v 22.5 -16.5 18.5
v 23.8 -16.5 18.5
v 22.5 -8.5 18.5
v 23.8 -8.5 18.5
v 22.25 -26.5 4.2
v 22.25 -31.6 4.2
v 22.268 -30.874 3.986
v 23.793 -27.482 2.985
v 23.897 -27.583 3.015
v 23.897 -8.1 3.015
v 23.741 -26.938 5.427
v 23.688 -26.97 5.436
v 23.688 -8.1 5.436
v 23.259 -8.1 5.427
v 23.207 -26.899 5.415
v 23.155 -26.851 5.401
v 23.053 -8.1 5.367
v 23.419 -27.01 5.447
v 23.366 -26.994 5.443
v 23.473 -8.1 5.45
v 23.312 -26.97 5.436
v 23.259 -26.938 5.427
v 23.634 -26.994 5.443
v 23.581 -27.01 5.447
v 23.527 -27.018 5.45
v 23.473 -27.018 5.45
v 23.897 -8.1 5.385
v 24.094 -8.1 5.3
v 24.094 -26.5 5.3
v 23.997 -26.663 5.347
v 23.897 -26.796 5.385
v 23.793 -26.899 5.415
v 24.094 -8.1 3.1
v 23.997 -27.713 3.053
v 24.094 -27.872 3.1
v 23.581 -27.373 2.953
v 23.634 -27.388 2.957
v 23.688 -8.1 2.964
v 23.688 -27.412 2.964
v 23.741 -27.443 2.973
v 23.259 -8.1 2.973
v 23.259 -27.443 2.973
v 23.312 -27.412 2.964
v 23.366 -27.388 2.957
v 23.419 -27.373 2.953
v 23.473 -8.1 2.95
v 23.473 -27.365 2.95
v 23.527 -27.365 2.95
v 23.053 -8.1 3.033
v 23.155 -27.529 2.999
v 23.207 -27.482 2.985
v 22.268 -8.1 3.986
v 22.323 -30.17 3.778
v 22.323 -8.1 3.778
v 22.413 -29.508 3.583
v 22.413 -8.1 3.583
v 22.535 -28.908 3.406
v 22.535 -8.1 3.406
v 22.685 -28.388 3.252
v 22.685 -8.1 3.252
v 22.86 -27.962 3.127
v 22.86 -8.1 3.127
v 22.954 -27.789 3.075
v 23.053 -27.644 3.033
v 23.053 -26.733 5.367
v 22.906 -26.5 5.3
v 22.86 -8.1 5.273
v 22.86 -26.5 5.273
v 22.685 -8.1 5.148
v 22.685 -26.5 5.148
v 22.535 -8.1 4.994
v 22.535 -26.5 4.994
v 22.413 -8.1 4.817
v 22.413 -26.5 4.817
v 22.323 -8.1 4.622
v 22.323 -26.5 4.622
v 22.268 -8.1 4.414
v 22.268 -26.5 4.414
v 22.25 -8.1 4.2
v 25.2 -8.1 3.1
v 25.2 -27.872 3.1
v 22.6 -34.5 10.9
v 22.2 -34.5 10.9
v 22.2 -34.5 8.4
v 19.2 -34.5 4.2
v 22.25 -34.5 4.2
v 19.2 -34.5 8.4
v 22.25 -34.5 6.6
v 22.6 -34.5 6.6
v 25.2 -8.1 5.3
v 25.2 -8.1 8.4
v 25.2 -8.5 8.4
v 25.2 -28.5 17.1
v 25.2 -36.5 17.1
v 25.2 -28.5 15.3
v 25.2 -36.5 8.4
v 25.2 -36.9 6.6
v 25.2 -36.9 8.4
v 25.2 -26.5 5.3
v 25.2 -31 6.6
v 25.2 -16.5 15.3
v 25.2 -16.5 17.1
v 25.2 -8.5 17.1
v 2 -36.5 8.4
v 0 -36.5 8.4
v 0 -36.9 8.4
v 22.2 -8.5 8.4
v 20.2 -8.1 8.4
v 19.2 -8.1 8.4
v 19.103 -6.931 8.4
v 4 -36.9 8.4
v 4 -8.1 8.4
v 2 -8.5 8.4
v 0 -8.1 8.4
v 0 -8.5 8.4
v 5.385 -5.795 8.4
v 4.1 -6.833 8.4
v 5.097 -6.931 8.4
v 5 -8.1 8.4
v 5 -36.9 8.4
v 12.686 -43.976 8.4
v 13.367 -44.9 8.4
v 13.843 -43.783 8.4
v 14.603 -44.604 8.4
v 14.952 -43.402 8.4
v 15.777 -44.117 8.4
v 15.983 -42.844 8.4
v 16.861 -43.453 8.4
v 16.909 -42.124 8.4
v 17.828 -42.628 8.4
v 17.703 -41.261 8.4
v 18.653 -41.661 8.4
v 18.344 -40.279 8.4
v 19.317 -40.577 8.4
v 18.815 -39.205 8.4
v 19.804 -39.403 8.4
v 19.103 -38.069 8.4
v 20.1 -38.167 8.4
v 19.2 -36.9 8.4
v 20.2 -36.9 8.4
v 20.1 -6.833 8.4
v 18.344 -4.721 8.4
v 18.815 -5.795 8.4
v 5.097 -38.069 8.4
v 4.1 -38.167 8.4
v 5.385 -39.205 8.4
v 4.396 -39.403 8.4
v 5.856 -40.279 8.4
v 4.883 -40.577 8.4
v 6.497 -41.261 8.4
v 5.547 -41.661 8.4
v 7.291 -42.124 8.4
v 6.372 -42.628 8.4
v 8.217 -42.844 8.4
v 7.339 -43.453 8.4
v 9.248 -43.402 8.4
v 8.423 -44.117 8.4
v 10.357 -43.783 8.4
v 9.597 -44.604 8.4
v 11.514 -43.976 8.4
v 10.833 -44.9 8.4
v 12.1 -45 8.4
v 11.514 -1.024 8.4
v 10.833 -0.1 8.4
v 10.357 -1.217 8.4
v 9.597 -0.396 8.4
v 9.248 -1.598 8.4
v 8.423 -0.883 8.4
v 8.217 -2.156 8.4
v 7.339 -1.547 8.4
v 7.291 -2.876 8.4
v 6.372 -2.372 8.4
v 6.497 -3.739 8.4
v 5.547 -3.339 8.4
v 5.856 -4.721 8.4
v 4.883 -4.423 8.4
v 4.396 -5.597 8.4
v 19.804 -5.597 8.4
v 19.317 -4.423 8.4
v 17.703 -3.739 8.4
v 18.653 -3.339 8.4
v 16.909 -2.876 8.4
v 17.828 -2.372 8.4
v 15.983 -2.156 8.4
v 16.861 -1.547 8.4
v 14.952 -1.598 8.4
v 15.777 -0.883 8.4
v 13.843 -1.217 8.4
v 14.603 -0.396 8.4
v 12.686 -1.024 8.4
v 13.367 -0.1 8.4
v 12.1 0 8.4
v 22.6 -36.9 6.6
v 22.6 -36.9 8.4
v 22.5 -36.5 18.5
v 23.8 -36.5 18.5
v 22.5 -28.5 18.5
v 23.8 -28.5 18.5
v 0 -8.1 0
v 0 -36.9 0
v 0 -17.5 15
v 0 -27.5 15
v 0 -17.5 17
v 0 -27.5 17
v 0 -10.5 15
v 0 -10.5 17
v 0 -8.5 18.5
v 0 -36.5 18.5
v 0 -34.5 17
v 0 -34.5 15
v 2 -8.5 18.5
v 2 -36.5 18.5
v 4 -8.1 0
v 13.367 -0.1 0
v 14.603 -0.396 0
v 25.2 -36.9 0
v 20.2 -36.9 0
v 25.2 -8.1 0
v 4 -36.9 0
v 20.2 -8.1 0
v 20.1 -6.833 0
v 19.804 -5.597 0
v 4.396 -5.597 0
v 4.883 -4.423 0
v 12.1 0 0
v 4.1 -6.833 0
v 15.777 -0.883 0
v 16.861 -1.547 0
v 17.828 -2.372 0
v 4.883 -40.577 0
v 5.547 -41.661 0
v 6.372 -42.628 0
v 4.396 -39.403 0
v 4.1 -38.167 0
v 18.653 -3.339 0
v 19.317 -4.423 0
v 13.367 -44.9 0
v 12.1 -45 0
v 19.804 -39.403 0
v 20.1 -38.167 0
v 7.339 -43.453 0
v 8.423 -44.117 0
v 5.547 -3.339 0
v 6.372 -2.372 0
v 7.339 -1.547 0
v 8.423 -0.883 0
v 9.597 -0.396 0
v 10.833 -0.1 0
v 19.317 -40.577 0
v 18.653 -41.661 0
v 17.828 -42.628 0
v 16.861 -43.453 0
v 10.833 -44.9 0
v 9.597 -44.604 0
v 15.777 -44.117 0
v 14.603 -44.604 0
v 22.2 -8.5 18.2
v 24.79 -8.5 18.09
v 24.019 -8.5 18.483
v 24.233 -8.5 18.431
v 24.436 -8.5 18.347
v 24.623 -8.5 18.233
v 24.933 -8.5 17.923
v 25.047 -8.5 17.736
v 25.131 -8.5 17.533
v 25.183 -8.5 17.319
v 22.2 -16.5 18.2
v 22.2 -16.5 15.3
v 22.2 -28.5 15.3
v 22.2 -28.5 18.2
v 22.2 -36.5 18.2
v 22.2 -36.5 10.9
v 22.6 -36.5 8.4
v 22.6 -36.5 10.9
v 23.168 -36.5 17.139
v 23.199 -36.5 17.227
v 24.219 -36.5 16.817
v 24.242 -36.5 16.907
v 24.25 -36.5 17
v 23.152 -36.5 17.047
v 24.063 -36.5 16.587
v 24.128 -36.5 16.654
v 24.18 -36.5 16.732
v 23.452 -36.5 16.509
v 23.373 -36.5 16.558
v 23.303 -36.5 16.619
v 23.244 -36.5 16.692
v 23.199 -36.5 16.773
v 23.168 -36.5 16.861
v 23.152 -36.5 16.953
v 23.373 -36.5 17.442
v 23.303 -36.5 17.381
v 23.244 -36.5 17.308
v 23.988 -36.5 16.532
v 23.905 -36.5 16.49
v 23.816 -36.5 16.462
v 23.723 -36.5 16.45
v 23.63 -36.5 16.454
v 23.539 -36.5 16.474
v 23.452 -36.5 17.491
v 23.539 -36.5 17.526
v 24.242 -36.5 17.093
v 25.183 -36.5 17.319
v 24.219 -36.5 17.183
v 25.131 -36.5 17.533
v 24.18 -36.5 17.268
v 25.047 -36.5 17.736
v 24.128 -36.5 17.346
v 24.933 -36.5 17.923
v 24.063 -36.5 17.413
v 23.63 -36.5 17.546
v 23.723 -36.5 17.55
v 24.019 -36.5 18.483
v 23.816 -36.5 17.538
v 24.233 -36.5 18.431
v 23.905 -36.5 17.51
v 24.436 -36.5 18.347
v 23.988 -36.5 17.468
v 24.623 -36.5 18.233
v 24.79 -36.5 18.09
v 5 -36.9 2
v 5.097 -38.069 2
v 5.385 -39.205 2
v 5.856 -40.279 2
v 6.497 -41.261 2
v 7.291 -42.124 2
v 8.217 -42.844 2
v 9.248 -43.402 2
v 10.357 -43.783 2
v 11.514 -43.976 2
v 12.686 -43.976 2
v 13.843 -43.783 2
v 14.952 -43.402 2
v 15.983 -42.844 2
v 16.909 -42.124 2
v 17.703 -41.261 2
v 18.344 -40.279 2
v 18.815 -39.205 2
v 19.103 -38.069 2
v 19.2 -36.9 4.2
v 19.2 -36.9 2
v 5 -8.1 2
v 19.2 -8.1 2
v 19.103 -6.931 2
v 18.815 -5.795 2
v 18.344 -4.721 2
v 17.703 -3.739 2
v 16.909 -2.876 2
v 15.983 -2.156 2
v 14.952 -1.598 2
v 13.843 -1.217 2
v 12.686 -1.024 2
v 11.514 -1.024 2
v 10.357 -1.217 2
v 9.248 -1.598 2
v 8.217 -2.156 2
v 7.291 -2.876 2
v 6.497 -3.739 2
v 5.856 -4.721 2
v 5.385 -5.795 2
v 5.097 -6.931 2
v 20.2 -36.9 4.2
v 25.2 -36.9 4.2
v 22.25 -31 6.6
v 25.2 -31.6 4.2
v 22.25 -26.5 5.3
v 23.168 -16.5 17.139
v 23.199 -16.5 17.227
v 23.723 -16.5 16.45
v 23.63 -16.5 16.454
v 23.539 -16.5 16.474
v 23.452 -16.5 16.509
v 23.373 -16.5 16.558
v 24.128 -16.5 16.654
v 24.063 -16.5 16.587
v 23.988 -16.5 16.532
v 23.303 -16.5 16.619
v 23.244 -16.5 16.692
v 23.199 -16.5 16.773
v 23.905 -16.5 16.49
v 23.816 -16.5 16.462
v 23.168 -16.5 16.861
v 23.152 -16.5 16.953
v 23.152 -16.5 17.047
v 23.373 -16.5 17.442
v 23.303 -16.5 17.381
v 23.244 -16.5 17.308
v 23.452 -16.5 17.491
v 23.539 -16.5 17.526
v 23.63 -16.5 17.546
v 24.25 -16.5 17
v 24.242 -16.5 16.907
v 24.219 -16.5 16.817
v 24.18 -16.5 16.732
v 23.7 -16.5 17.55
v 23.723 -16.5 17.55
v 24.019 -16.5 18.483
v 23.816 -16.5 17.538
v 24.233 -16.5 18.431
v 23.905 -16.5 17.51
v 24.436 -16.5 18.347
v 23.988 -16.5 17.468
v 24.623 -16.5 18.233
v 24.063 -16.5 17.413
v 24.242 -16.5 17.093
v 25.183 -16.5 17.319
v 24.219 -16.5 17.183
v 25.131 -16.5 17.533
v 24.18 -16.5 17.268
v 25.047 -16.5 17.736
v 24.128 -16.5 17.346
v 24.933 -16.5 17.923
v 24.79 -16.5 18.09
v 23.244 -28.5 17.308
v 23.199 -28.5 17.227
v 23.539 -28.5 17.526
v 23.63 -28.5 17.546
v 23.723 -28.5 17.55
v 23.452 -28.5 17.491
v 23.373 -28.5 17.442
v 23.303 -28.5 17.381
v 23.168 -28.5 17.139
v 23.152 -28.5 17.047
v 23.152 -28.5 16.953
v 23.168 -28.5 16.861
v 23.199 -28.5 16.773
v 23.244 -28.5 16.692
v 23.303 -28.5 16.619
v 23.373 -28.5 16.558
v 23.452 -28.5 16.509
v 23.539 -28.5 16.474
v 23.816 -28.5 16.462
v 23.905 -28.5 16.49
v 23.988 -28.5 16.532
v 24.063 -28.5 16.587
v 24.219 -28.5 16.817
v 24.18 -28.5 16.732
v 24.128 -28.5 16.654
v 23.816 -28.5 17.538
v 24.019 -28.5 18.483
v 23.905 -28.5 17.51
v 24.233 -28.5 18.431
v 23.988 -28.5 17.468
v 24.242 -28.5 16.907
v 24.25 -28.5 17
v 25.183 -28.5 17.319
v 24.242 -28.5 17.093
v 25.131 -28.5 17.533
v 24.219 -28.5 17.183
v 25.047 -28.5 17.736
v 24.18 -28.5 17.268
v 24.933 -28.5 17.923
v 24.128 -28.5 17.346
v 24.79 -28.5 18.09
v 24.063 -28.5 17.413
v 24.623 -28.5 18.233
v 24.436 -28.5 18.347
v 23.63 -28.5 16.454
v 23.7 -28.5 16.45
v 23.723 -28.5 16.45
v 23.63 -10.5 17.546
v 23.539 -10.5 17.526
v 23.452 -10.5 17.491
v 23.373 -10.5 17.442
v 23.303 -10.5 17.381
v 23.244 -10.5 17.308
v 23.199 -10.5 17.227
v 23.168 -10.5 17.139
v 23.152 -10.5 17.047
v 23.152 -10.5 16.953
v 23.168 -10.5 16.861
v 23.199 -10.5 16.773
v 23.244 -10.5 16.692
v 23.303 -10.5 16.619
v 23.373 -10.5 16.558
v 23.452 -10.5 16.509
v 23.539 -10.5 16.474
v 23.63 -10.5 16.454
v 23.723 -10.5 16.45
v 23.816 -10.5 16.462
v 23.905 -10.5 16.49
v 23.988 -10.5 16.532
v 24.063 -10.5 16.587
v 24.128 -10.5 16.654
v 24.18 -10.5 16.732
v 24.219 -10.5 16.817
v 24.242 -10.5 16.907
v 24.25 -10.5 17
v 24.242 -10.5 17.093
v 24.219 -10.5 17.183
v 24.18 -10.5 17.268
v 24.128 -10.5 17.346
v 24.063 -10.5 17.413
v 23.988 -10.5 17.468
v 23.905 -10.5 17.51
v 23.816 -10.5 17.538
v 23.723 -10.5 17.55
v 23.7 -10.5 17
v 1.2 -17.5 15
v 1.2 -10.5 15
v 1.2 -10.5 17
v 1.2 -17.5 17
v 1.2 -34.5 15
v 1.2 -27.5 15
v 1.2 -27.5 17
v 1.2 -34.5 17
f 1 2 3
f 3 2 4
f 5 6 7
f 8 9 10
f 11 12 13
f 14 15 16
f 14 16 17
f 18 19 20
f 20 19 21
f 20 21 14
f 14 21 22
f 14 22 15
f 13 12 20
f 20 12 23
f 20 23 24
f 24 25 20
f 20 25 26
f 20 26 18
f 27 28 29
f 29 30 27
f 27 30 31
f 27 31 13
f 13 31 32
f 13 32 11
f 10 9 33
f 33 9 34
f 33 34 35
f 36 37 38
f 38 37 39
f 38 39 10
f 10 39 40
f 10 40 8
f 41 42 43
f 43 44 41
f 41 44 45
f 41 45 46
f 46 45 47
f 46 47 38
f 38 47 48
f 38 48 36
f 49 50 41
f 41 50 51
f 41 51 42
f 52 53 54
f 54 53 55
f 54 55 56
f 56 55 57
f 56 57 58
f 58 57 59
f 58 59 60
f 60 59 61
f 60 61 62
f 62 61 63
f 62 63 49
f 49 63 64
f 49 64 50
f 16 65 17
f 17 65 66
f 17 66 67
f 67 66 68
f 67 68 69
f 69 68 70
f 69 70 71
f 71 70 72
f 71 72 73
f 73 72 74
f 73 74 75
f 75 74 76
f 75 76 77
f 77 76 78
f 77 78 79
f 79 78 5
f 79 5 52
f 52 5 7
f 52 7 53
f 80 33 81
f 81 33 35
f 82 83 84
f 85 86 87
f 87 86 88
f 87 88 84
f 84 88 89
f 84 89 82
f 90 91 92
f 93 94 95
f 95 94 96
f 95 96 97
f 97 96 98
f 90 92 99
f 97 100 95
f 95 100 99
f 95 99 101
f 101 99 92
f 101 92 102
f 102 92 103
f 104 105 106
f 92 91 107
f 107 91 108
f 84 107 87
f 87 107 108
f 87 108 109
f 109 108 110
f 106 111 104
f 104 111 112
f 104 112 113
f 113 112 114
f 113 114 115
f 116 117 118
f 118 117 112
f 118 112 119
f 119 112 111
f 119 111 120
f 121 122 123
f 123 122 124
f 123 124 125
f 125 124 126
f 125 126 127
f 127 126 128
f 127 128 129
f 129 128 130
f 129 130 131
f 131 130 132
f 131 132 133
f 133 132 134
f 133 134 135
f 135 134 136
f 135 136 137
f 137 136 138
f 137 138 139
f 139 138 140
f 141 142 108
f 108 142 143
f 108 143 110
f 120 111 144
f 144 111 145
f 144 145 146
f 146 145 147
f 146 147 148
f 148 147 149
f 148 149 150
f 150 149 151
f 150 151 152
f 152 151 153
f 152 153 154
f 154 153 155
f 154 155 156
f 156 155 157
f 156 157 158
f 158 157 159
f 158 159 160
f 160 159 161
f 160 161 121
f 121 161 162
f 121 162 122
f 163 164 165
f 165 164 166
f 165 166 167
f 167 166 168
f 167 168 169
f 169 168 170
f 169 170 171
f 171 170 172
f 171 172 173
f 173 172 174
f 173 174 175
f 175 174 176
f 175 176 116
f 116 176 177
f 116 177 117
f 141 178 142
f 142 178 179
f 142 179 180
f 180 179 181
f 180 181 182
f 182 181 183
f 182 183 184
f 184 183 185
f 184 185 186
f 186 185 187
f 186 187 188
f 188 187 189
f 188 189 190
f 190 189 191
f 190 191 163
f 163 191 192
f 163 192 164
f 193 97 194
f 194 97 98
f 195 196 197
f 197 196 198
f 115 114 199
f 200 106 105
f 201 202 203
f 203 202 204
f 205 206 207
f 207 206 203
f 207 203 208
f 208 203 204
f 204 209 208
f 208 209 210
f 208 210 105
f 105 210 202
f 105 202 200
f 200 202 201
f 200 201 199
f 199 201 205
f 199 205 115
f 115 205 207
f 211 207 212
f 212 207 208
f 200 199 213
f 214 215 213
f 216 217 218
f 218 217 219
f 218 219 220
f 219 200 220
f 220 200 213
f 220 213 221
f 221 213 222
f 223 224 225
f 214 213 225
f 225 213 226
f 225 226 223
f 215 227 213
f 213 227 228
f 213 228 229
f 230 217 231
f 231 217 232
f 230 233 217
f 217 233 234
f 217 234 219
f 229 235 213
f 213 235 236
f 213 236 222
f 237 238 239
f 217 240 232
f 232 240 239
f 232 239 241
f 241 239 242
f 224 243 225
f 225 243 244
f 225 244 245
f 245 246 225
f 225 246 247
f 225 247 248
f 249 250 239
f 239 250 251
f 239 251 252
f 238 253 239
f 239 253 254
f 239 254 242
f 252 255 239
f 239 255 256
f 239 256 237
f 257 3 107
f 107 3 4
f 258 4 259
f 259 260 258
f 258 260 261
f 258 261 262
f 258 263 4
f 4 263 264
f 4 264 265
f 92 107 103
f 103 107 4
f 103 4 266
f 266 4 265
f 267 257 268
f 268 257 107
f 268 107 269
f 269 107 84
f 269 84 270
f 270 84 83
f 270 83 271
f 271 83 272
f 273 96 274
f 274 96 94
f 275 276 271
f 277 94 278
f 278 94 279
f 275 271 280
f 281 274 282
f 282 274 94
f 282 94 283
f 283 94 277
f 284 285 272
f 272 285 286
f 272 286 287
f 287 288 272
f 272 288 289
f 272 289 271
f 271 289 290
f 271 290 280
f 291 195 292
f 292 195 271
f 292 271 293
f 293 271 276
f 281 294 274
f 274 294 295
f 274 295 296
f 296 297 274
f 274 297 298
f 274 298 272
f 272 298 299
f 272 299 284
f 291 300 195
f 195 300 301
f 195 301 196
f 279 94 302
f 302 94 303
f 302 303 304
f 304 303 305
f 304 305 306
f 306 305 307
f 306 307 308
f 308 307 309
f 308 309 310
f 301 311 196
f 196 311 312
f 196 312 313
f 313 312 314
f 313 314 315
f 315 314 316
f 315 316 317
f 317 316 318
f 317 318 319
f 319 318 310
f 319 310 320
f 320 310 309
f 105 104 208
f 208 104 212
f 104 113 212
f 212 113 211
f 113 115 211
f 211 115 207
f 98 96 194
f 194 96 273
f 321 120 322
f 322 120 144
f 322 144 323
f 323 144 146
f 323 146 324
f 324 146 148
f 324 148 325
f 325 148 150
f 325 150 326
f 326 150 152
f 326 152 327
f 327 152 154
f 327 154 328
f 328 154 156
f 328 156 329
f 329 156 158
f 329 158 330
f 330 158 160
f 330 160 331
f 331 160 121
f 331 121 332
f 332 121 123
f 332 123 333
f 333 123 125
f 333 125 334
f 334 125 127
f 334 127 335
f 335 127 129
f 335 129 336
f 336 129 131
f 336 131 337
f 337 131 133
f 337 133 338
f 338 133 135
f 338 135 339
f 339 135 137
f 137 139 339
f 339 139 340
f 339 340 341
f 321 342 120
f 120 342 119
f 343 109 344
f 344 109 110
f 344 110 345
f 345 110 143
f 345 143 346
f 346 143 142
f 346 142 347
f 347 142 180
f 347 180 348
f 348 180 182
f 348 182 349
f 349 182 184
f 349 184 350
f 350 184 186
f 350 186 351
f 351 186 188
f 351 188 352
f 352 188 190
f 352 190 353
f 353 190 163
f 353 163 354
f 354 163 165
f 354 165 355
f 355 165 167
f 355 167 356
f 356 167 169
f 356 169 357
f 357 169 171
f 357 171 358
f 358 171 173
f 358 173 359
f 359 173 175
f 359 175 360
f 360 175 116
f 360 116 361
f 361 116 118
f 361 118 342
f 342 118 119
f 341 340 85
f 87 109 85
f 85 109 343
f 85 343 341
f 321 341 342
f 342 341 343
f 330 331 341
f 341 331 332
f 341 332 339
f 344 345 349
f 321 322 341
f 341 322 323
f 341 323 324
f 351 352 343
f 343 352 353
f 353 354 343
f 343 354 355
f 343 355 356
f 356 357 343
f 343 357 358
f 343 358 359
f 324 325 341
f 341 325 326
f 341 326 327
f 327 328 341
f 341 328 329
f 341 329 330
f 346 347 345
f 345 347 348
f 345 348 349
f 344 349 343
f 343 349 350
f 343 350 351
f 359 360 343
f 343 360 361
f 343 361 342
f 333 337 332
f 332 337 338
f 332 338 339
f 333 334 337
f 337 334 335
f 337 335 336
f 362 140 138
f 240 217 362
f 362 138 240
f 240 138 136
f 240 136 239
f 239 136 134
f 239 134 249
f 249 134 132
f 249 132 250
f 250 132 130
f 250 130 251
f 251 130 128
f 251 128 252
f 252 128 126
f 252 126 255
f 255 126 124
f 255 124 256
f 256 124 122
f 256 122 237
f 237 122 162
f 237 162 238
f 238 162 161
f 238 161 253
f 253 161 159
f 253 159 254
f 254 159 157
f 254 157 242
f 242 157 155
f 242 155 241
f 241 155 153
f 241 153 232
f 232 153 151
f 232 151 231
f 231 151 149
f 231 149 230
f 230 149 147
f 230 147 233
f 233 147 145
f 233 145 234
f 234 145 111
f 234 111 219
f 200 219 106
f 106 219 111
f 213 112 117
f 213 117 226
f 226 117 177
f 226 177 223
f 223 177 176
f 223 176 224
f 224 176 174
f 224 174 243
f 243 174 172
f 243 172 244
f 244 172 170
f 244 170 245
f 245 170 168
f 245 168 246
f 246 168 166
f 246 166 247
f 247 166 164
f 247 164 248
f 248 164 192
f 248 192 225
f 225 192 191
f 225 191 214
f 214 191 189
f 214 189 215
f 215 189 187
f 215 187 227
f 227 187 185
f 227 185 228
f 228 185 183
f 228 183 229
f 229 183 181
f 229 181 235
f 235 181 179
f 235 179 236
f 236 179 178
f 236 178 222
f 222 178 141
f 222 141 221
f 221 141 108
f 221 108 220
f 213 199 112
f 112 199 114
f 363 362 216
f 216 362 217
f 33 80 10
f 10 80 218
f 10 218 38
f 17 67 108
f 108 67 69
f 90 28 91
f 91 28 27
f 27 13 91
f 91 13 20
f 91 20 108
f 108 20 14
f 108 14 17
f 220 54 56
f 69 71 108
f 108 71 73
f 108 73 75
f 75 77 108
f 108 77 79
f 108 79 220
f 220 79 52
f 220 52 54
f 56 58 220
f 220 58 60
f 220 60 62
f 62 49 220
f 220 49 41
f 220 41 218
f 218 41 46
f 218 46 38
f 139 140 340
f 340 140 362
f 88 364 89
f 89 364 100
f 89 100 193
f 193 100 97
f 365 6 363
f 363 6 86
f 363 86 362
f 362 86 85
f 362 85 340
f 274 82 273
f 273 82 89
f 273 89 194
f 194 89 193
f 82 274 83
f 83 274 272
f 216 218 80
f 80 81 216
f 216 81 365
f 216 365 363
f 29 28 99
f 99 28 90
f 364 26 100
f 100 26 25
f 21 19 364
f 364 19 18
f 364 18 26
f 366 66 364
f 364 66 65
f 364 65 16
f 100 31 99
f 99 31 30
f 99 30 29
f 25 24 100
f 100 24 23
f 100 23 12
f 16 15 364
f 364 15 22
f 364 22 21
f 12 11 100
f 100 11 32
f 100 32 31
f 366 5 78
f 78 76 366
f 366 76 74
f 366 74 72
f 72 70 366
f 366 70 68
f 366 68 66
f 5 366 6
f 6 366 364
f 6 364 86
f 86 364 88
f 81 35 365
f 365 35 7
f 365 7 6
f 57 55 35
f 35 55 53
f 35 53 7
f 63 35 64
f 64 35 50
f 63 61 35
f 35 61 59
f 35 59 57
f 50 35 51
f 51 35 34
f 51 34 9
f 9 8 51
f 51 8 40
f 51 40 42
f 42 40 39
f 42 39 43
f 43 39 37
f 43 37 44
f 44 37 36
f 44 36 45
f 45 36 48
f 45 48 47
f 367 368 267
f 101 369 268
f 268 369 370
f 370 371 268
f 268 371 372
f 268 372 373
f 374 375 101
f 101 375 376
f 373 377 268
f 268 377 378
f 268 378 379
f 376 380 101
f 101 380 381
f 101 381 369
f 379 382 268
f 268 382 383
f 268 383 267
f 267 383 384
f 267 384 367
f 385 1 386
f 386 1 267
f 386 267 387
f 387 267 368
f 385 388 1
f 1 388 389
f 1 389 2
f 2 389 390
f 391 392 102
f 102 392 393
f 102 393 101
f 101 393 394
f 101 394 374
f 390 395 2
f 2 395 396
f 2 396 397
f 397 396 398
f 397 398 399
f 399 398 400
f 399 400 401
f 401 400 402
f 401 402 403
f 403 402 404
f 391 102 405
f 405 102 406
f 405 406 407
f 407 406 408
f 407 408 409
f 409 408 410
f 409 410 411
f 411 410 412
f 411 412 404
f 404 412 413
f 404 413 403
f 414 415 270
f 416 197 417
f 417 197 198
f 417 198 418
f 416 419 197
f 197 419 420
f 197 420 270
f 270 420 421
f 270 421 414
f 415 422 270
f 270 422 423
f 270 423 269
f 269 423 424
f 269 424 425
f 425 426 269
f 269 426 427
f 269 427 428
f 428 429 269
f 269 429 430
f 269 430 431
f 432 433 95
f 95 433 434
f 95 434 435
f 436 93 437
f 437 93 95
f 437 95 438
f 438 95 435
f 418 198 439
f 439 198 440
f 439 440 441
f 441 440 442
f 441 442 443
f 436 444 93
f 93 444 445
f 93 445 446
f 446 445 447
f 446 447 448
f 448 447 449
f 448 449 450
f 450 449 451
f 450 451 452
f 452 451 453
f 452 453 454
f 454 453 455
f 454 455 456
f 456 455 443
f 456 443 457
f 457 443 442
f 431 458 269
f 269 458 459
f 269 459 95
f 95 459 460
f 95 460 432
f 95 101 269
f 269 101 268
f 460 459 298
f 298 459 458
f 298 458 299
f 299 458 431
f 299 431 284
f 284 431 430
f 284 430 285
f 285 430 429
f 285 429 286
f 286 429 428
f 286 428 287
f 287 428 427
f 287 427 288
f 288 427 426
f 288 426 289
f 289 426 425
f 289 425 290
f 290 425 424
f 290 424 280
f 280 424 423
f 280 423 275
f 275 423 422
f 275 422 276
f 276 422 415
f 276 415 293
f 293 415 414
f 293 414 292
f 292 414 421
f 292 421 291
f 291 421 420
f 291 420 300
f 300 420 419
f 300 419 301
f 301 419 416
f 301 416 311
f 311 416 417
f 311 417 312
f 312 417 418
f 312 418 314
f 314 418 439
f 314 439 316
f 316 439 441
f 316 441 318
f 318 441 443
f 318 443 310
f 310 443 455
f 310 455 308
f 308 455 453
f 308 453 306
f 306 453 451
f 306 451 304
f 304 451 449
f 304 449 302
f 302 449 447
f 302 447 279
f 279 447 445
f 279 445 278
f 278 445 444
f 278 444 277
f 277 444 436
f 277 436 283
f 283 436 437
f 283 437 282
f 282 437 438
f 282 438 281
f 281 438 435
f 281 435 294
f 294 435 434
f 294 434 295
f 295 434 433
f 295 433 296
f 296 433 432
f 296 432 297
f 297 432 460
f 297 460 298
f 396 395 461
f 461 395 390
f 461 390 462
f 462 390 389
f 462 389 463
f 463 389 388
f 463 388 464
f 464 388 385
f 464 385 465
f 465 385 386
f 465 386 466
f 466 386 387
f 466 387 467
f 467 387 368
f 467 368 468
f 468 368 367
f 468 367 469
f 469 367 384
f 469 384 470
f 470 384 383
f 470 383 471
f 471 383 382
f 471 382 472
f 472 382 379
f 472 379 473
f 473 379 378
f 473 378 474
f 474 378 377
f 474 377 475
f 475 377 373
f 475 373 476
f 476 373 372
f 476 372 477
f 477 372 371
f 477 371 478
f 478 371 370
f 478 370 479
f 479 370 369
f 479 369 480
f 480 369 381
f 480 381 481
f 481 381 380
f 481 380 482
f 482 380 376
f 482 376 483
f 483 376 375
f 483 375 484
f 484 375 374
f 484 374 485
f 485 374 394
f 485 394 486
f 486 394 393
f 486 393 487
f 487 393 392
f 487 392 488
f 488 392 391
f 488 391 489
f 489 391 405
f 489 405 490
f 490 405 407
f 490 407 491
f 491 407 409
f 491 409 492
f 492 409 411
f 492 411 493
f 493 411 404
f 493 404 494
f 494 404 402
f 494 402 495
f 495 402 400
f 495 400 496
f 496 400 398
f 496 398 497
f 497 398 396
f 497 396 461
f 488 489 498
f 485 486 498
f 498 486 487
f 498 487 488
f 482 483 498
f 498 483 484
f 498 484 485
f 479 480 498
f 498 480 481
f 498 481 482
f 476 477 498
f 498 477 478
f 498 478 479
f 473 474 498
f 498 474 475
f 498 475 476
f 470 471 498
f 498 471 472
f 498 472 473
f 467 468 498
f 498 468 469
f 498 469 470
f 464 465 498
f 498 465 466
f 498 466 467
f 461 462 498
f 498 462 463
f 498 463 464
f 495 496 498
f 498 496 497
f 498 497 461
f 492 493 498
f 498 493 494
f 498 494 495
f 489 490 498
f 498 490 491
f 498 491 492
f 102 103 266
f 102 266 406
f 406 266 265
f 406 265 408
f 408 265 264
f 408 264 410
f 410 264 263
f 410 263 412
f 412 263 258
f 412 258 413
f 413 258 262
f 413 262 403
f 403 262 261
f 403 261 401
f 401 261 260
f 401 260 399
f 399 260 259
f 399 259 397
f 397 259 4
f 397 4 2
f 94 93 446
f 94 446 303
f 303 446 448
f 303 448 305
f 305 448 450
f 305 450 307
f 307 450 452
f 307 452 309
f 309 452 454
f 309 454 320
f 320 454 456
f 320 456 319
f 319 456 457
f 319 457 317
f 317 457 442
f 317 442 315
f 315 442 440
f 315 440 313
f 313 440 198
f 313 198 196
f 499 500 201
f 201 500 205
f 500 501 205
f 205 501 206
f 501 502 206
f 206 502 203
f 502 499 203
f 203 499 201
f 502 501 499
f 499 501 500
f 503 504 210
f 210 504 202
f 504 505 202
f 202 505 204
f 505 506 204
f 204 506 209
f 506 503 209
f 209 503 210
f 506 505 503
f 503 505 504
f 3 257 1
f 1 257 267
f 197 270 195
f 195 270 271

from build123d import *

# Parameters (mm, degrees)
SKETCH_1_W           = 24.2
SKETCH_1_H           = 45
EXTRUDE_1_DEPTH      = 18.5
CUT_EXTRUDE_1_DEPTH  = 10.1
CUT_EXTRUDE_2_DEPTH  = 6.4
CUT_EXTRUDE_3_DEPTH  = 9.4
CUT_EXTRUDE_4_DEPTH  = 9.4
SKETCH_6_W           = 2.4
SKETCH_6_H           = 2.4
CUT_EXTRUDE_5_DEPTH  = 6.4
SKETCH_8_W           = 3.4
SKETCH_8_H           = 2.4
CUT_EXTRUDE_7_DEPTH  = 2
SKETCH_9_W           = 2.5
SKETCH_9_H           = 2
CUT_EXTRUDE_8_DEPTH  = 0.4
SKETCH_12_W          = 18.5
SKETCH_12_H          = 26.4
EXTRUDE_2_DEPTH      = 1
SKETCH_13_R          = 1.25
CUT_EXTRUDE_10_DEPTH = 26.4
SKETCH_14_W          = 2.2
SKETCH_14_H          = 26.4
CUT_EXTRUDE_11_DEPTH = 1.5
CUT_EXTRUDE_13_DEPTH = 2.95
SKETCH_19_W          = 10.1
SKETCH_19_H          = 2
EXTRUDE_3_DEPTH      = 1
SKETCH_20_W          = 1.8
SKETCH_20_H          = 2.4
EXTRUDE_4_DEPTH      = 1
SKETCH_21_W          = 1
SKETCH_21_H          = 10.1
CUT_EXTRUDE_14_DEPTH = 0.4
SKETCH_22_W          = 4.2
SKETCH_22_H          = 2.4
EXTRUDE_5_DEPTH      = 1
EXTRUDE_6_DEPTH      = 2.95
SKETCH_25_W          = 3
SKETCH_25_H          = 12
CUT_EXTRUDE_15_DEPTH = 3.2
SKETCH_26_R          = 0.55
CUT_EXTRUDE_16_DEPTH = 26
FILLET_1_R           = 1.4
SKETCH_27_W          = 2
SKETCH_27_H          = 7
CUT_EXTRUDE_17_DEPTH = 1.2
CHAMFER_1_SIZE       = 0.3


with BuildPart() as part:
    # 草图1 → 凸台-拉伸1 (new body)
    with BuildSketch(Plane.XY):
        with Locations((12.1, -22.5)):
            Rectangle(SKETCH_1_W, SKETCH_1_H)
    extrude(amount=EXTRUDE_1_DEPTH)

    # 草图2 → 切除-拉伸1 (cut)
    with BuildSketch(Plane.XY.offset(18.5)):
        Polygon((0, 0), (0, -8.5), (2, -8.5), (2, -36.5), (0, -36.5), (0, -45), (24.2, -45), (24.2, -36.5), (22.2, -36.5), (22.2, -8.5), (24.2, -8.5), (24.2, 0), align=None)
    extrude(amount=-CUT_EXTRUDE_1_DEPTH, mode=Mode.SUBTRACT)

    # 草图3 → 切除-拉伸2 (cut)
    with BuildSketch(Plane.XY.offset(8.4)):
        with BuildLine():
            Line((5, -8.1), (5, -36.9))
            ThreePointArc((5, -36.9), (12.1, -44), (19.2, -36.9))
            Line((19.2, -36.9), (19.2, -8.1))
            ThreePointArc((19.2, -8.1), (12.1, -1), (5, -8.1))
        make_face()
    extrude(amount=-CUT_EXTRUDE_2_DEPTH, mode=Mode.SUBTRACT)

    # 草图4 → 切除-拉伸3 (cut, through all)
    with BuildSketch(Plane.XY.offset(8.4)):
        with BuildLine():
            Line((4, -8.1), (0, -8.1))
            Line((0, -8.1), (0, 0))
            Line((0, 0), (12.1, 0))
            ThreePointArc((12.1, 0), (6.372435072, -2.372435072), (4, -8.1))
        make_face()
        with BuildLine():
            Line((4, -36.9), (0, -36.9))
            Line((0, -36.9), (0, -45))
            Line((0, -45), (12.1, -45))
            ThreePointArc((12.1, -45), (6.372435072, -42.627564928), (4, -36.9))
        make_face()
    extrude(amount=-CUT_EXTRUDE_3_DEPTH, mode=Mode.SUBTRACT)

    # 草图5 → 切除-拉伸4 (cut, through all)
    with BuildSketch(Plane.XY.offset(8.4)):
        with BuildLine():
            Line((20.2, -36.9), (24.2, -36.9))
            Line((24.2, -36.9), (24.2, -45))
            Line((24.2, -45), (12.1, -45))
            ThreePointArc((12.1, -45), (17.827564928, -42.627564928), (20.2, -36.9))
        make_face()
        with BuildLine():
            Line((20.2, -8.1), (24.2, -8.1))
            Line((24.2, -8.1), (24.2, 0))
            Line((24.2, 0), (12.1, 0))
            ThreePointArc((12.1, 0), (17.827564928, -2.372435072), (20.2, -8.1))
        make_face()
    extrude(amount=-CUT_EXTRUDE_4_DEPTH, mode=Mode.SUBTRACT)

    # 草图6 → 切除-拉伸5 (cut)
    with BuildSketch(Plane(origin=(24.2, 0, 0), x_dir=(0, 0, -1), z_dir=(1, 0, 0))):
        with Locations((-5.4, -35.7)):
            Rectangle(SKETCH_6_W, SKETCH_6_H)
    extrude(amount=-CUT_EXTRUDE_5_DEPTH, mode=Mode.SUBTRACT)

    # 草图8 → 切除-拉伸7 (cut)
    with BuildSketch(Plane.XY.offset(8.4)):
        with Locations((20.9, -35.7)):
            Rectangle(SKETCH_8_W, SKETCH_8_H)
    extrude(amount=-CUT_EXTRUDE_7_DEPTH, mode=Mode.SUBTRACT)

    # 草图9 → 切除-拉伸8 (cut)
    with BuildSketch(Plane.ZY.offset(-22.2)):
        with Locations((9.65, -35.5)):
            Rectangle(SKETCH_9_W, SKETCH_9_H)
    extrude(amount=-CUT_EXTRUDE_8_DEPTH, mode=Mode.SUBTRACT)

    # 草图12 → 凸台-拉伸2 (add)
    with BuildSketch(Plane(origin=(24.2, 0, 0), x_dir=(0, 0, -1), z_dir=(1, 0, 0))):
        with Locations((-9.25, -21.3)):
            Rectangle(SKETCH_12_W, SKETCH_12_H)
    extrude(amount=EXTRUDE_2_DEPTH)

    # 草图13 → 切除-拉伸10 (cut)
    with BuildSketch(Plane(origin=(0, -8.1, 0), x_dir=(1, 0, 0), z_dir=(0, 1, 0))):
        with Locations((23.5, -4.2)):
            Circle(SKETCH_13_R)
    extrude(amount=-CUT_EXTRUDE_10_DEPTH, mode=Mode.SUBTRACT)

    # 草图14 → 切除-拉伸11 (cut)
    with BuildSketch(Plane(origin=(25.2, 0, 0), x_dir=(0, 0, -1), z_dir=(1, 0, 0))):
        with Locations((-4.2, -21.3)):
            Rectangle(SKETCH_14_W, SKETCH_14_H)
    extrude(amount=-CUT_EXTRUDE_11_DEPTH, mode=Mode.SUBTRACT)

    # 草图17 → 切除-拉伸13 (cut)
    with BuildSketch(Plane(origin=(25.2, 0, 0), x_dir=(0, 0, -1), z_dir=(1, 0, 0))):
        Polygon((-6.6, -34.5), (-6.6, -31), (-5.3, -26.5), (-4.2, -26.5), (-4.2, -34.5), align=None)
    extrude(amount=-CUT_EXTRUDE_13_DEPTH, mode=Mode.SUBTRACT)

    # 草图19 → 凸台-拉伸3 (add)
    with BuildSketch(Plane(origin=(24.2, 0, 0), x_dir=(0, 0, -1), z_dir=(1, 0, 0))):
        with Locations((-13.45, -35.5)):
            Rectangle(SKETCH_19_W, SKETCH_19_H)
    extrude(amount=EXTRUDE_3_DEPTH)

    # 草图20 → 凸台-拉伸4 (add)
    with BuildSketch(Plane(origin=(24.2, 0, 0), x_dir=(0, 0, -1), z_dir=(1, 0, 0))):
        with Locations((-7.5, -35.7)):
            Rectangle(SKETCH_20_W, SKETCH_20_H)
    extrude(amount=EXTRUDE_4_DEPTH)

    # 草图21 → 切除-拉伸14 (cut)
    with BuildSketch(Plane(origin=(0, -8.1, 0), x_dir=(1, 0, 0), z_dir=(0, 1, 0))):
        with Locations((24.7, -13.45)):
            Rectangle(SKETCH_21_W, SKETCH_21_H)
    extrude(amount=-CUT_EXTRUDE_14_DEPTH, mode=Mode.SUBTRACT)

    # 草图22 → 凸台-拉伸5 (add)
    with BuildSketch(Plane(origin=(24.2, 0, 0), x_dir=(0, 0, -1), z_dir=(1, 0, 0))):
        with Locations((-2.1, -35.7)):
            Rectangle(SKETCH_22_W, SKETCH_22_H)
    extrude(amount=EXTRUDE_5_DEPTH)

    # 草图23 → 凸台-拉伸6 (add)
    with BuildSketch(Plane(origin=(22.25, 0, 0), x_dir=(0, 0, -1), z_dir=(1, 0, 0))):
        Polygon((-4.2, -34.5), (-2.4, -34.5), (-2.4, -25.5), (-4.2, -31.6), align=None)
    extrude(amount=EXTRUDE_6_DEPTH)

    # 草图25 → 切除-拉伸15 (cut)
    with BuildSketch(Plane.XY.offset(18.5)):
        with Locations((23.7, -22.5)):
            Rectangle(SKETCH_25_W, SKETCH_25_H)
    extrude(amount=-CUT_EXTRUDE_15_DEPTH, mode=Mode.SUBTRACT)

    # 草图26 → 切除-拉伸16 (cut)
    with BuildSketch(Plane.XZ.offset(36.5)):
        with Locations((23.7, 17)):
            Circle(SKETCH_26_R)
    extrude(amount=-CUT_EXTRUDE_16_DEPTH, mode=Mode.SUBTRACT)

    # 圆角1
    fillet_1_edges = [part.edges().sort_by_distance(p)[0] for p in [
        (25.2, -12.5, 18.5),
        (25.2, -32.5, 18.5),
    ]]
    fillet(fillet_1_edges, radius=FILLET_1_R)

    # 草图27 → 切除-拉伸17 (cut)
    with BuildSketch(Plane.ZY):
        with Locations((16, -14)):
            Rectangle(SKETCH_27_W, SKETCH_27_H)
        with Locations((16, -31)):
            Rectangle(SKETCH_27_W, SKETCH_27_H)
    extrude(amount=-CUT_EXTRUDE_17_DEPTH, mode=Mode.SUBTRACT)

    # 倒角1
    chamfer_1_edges = [part.edges().sort_by_distance(p)[0] for p in [
        (22.2, -32.5, 18.5),
        (22.2, -12.5, 18.5),
    ]]
    chamfer(chamfer_1_edges, length=CHAMFER_1_SIZE)


solid = part.part
